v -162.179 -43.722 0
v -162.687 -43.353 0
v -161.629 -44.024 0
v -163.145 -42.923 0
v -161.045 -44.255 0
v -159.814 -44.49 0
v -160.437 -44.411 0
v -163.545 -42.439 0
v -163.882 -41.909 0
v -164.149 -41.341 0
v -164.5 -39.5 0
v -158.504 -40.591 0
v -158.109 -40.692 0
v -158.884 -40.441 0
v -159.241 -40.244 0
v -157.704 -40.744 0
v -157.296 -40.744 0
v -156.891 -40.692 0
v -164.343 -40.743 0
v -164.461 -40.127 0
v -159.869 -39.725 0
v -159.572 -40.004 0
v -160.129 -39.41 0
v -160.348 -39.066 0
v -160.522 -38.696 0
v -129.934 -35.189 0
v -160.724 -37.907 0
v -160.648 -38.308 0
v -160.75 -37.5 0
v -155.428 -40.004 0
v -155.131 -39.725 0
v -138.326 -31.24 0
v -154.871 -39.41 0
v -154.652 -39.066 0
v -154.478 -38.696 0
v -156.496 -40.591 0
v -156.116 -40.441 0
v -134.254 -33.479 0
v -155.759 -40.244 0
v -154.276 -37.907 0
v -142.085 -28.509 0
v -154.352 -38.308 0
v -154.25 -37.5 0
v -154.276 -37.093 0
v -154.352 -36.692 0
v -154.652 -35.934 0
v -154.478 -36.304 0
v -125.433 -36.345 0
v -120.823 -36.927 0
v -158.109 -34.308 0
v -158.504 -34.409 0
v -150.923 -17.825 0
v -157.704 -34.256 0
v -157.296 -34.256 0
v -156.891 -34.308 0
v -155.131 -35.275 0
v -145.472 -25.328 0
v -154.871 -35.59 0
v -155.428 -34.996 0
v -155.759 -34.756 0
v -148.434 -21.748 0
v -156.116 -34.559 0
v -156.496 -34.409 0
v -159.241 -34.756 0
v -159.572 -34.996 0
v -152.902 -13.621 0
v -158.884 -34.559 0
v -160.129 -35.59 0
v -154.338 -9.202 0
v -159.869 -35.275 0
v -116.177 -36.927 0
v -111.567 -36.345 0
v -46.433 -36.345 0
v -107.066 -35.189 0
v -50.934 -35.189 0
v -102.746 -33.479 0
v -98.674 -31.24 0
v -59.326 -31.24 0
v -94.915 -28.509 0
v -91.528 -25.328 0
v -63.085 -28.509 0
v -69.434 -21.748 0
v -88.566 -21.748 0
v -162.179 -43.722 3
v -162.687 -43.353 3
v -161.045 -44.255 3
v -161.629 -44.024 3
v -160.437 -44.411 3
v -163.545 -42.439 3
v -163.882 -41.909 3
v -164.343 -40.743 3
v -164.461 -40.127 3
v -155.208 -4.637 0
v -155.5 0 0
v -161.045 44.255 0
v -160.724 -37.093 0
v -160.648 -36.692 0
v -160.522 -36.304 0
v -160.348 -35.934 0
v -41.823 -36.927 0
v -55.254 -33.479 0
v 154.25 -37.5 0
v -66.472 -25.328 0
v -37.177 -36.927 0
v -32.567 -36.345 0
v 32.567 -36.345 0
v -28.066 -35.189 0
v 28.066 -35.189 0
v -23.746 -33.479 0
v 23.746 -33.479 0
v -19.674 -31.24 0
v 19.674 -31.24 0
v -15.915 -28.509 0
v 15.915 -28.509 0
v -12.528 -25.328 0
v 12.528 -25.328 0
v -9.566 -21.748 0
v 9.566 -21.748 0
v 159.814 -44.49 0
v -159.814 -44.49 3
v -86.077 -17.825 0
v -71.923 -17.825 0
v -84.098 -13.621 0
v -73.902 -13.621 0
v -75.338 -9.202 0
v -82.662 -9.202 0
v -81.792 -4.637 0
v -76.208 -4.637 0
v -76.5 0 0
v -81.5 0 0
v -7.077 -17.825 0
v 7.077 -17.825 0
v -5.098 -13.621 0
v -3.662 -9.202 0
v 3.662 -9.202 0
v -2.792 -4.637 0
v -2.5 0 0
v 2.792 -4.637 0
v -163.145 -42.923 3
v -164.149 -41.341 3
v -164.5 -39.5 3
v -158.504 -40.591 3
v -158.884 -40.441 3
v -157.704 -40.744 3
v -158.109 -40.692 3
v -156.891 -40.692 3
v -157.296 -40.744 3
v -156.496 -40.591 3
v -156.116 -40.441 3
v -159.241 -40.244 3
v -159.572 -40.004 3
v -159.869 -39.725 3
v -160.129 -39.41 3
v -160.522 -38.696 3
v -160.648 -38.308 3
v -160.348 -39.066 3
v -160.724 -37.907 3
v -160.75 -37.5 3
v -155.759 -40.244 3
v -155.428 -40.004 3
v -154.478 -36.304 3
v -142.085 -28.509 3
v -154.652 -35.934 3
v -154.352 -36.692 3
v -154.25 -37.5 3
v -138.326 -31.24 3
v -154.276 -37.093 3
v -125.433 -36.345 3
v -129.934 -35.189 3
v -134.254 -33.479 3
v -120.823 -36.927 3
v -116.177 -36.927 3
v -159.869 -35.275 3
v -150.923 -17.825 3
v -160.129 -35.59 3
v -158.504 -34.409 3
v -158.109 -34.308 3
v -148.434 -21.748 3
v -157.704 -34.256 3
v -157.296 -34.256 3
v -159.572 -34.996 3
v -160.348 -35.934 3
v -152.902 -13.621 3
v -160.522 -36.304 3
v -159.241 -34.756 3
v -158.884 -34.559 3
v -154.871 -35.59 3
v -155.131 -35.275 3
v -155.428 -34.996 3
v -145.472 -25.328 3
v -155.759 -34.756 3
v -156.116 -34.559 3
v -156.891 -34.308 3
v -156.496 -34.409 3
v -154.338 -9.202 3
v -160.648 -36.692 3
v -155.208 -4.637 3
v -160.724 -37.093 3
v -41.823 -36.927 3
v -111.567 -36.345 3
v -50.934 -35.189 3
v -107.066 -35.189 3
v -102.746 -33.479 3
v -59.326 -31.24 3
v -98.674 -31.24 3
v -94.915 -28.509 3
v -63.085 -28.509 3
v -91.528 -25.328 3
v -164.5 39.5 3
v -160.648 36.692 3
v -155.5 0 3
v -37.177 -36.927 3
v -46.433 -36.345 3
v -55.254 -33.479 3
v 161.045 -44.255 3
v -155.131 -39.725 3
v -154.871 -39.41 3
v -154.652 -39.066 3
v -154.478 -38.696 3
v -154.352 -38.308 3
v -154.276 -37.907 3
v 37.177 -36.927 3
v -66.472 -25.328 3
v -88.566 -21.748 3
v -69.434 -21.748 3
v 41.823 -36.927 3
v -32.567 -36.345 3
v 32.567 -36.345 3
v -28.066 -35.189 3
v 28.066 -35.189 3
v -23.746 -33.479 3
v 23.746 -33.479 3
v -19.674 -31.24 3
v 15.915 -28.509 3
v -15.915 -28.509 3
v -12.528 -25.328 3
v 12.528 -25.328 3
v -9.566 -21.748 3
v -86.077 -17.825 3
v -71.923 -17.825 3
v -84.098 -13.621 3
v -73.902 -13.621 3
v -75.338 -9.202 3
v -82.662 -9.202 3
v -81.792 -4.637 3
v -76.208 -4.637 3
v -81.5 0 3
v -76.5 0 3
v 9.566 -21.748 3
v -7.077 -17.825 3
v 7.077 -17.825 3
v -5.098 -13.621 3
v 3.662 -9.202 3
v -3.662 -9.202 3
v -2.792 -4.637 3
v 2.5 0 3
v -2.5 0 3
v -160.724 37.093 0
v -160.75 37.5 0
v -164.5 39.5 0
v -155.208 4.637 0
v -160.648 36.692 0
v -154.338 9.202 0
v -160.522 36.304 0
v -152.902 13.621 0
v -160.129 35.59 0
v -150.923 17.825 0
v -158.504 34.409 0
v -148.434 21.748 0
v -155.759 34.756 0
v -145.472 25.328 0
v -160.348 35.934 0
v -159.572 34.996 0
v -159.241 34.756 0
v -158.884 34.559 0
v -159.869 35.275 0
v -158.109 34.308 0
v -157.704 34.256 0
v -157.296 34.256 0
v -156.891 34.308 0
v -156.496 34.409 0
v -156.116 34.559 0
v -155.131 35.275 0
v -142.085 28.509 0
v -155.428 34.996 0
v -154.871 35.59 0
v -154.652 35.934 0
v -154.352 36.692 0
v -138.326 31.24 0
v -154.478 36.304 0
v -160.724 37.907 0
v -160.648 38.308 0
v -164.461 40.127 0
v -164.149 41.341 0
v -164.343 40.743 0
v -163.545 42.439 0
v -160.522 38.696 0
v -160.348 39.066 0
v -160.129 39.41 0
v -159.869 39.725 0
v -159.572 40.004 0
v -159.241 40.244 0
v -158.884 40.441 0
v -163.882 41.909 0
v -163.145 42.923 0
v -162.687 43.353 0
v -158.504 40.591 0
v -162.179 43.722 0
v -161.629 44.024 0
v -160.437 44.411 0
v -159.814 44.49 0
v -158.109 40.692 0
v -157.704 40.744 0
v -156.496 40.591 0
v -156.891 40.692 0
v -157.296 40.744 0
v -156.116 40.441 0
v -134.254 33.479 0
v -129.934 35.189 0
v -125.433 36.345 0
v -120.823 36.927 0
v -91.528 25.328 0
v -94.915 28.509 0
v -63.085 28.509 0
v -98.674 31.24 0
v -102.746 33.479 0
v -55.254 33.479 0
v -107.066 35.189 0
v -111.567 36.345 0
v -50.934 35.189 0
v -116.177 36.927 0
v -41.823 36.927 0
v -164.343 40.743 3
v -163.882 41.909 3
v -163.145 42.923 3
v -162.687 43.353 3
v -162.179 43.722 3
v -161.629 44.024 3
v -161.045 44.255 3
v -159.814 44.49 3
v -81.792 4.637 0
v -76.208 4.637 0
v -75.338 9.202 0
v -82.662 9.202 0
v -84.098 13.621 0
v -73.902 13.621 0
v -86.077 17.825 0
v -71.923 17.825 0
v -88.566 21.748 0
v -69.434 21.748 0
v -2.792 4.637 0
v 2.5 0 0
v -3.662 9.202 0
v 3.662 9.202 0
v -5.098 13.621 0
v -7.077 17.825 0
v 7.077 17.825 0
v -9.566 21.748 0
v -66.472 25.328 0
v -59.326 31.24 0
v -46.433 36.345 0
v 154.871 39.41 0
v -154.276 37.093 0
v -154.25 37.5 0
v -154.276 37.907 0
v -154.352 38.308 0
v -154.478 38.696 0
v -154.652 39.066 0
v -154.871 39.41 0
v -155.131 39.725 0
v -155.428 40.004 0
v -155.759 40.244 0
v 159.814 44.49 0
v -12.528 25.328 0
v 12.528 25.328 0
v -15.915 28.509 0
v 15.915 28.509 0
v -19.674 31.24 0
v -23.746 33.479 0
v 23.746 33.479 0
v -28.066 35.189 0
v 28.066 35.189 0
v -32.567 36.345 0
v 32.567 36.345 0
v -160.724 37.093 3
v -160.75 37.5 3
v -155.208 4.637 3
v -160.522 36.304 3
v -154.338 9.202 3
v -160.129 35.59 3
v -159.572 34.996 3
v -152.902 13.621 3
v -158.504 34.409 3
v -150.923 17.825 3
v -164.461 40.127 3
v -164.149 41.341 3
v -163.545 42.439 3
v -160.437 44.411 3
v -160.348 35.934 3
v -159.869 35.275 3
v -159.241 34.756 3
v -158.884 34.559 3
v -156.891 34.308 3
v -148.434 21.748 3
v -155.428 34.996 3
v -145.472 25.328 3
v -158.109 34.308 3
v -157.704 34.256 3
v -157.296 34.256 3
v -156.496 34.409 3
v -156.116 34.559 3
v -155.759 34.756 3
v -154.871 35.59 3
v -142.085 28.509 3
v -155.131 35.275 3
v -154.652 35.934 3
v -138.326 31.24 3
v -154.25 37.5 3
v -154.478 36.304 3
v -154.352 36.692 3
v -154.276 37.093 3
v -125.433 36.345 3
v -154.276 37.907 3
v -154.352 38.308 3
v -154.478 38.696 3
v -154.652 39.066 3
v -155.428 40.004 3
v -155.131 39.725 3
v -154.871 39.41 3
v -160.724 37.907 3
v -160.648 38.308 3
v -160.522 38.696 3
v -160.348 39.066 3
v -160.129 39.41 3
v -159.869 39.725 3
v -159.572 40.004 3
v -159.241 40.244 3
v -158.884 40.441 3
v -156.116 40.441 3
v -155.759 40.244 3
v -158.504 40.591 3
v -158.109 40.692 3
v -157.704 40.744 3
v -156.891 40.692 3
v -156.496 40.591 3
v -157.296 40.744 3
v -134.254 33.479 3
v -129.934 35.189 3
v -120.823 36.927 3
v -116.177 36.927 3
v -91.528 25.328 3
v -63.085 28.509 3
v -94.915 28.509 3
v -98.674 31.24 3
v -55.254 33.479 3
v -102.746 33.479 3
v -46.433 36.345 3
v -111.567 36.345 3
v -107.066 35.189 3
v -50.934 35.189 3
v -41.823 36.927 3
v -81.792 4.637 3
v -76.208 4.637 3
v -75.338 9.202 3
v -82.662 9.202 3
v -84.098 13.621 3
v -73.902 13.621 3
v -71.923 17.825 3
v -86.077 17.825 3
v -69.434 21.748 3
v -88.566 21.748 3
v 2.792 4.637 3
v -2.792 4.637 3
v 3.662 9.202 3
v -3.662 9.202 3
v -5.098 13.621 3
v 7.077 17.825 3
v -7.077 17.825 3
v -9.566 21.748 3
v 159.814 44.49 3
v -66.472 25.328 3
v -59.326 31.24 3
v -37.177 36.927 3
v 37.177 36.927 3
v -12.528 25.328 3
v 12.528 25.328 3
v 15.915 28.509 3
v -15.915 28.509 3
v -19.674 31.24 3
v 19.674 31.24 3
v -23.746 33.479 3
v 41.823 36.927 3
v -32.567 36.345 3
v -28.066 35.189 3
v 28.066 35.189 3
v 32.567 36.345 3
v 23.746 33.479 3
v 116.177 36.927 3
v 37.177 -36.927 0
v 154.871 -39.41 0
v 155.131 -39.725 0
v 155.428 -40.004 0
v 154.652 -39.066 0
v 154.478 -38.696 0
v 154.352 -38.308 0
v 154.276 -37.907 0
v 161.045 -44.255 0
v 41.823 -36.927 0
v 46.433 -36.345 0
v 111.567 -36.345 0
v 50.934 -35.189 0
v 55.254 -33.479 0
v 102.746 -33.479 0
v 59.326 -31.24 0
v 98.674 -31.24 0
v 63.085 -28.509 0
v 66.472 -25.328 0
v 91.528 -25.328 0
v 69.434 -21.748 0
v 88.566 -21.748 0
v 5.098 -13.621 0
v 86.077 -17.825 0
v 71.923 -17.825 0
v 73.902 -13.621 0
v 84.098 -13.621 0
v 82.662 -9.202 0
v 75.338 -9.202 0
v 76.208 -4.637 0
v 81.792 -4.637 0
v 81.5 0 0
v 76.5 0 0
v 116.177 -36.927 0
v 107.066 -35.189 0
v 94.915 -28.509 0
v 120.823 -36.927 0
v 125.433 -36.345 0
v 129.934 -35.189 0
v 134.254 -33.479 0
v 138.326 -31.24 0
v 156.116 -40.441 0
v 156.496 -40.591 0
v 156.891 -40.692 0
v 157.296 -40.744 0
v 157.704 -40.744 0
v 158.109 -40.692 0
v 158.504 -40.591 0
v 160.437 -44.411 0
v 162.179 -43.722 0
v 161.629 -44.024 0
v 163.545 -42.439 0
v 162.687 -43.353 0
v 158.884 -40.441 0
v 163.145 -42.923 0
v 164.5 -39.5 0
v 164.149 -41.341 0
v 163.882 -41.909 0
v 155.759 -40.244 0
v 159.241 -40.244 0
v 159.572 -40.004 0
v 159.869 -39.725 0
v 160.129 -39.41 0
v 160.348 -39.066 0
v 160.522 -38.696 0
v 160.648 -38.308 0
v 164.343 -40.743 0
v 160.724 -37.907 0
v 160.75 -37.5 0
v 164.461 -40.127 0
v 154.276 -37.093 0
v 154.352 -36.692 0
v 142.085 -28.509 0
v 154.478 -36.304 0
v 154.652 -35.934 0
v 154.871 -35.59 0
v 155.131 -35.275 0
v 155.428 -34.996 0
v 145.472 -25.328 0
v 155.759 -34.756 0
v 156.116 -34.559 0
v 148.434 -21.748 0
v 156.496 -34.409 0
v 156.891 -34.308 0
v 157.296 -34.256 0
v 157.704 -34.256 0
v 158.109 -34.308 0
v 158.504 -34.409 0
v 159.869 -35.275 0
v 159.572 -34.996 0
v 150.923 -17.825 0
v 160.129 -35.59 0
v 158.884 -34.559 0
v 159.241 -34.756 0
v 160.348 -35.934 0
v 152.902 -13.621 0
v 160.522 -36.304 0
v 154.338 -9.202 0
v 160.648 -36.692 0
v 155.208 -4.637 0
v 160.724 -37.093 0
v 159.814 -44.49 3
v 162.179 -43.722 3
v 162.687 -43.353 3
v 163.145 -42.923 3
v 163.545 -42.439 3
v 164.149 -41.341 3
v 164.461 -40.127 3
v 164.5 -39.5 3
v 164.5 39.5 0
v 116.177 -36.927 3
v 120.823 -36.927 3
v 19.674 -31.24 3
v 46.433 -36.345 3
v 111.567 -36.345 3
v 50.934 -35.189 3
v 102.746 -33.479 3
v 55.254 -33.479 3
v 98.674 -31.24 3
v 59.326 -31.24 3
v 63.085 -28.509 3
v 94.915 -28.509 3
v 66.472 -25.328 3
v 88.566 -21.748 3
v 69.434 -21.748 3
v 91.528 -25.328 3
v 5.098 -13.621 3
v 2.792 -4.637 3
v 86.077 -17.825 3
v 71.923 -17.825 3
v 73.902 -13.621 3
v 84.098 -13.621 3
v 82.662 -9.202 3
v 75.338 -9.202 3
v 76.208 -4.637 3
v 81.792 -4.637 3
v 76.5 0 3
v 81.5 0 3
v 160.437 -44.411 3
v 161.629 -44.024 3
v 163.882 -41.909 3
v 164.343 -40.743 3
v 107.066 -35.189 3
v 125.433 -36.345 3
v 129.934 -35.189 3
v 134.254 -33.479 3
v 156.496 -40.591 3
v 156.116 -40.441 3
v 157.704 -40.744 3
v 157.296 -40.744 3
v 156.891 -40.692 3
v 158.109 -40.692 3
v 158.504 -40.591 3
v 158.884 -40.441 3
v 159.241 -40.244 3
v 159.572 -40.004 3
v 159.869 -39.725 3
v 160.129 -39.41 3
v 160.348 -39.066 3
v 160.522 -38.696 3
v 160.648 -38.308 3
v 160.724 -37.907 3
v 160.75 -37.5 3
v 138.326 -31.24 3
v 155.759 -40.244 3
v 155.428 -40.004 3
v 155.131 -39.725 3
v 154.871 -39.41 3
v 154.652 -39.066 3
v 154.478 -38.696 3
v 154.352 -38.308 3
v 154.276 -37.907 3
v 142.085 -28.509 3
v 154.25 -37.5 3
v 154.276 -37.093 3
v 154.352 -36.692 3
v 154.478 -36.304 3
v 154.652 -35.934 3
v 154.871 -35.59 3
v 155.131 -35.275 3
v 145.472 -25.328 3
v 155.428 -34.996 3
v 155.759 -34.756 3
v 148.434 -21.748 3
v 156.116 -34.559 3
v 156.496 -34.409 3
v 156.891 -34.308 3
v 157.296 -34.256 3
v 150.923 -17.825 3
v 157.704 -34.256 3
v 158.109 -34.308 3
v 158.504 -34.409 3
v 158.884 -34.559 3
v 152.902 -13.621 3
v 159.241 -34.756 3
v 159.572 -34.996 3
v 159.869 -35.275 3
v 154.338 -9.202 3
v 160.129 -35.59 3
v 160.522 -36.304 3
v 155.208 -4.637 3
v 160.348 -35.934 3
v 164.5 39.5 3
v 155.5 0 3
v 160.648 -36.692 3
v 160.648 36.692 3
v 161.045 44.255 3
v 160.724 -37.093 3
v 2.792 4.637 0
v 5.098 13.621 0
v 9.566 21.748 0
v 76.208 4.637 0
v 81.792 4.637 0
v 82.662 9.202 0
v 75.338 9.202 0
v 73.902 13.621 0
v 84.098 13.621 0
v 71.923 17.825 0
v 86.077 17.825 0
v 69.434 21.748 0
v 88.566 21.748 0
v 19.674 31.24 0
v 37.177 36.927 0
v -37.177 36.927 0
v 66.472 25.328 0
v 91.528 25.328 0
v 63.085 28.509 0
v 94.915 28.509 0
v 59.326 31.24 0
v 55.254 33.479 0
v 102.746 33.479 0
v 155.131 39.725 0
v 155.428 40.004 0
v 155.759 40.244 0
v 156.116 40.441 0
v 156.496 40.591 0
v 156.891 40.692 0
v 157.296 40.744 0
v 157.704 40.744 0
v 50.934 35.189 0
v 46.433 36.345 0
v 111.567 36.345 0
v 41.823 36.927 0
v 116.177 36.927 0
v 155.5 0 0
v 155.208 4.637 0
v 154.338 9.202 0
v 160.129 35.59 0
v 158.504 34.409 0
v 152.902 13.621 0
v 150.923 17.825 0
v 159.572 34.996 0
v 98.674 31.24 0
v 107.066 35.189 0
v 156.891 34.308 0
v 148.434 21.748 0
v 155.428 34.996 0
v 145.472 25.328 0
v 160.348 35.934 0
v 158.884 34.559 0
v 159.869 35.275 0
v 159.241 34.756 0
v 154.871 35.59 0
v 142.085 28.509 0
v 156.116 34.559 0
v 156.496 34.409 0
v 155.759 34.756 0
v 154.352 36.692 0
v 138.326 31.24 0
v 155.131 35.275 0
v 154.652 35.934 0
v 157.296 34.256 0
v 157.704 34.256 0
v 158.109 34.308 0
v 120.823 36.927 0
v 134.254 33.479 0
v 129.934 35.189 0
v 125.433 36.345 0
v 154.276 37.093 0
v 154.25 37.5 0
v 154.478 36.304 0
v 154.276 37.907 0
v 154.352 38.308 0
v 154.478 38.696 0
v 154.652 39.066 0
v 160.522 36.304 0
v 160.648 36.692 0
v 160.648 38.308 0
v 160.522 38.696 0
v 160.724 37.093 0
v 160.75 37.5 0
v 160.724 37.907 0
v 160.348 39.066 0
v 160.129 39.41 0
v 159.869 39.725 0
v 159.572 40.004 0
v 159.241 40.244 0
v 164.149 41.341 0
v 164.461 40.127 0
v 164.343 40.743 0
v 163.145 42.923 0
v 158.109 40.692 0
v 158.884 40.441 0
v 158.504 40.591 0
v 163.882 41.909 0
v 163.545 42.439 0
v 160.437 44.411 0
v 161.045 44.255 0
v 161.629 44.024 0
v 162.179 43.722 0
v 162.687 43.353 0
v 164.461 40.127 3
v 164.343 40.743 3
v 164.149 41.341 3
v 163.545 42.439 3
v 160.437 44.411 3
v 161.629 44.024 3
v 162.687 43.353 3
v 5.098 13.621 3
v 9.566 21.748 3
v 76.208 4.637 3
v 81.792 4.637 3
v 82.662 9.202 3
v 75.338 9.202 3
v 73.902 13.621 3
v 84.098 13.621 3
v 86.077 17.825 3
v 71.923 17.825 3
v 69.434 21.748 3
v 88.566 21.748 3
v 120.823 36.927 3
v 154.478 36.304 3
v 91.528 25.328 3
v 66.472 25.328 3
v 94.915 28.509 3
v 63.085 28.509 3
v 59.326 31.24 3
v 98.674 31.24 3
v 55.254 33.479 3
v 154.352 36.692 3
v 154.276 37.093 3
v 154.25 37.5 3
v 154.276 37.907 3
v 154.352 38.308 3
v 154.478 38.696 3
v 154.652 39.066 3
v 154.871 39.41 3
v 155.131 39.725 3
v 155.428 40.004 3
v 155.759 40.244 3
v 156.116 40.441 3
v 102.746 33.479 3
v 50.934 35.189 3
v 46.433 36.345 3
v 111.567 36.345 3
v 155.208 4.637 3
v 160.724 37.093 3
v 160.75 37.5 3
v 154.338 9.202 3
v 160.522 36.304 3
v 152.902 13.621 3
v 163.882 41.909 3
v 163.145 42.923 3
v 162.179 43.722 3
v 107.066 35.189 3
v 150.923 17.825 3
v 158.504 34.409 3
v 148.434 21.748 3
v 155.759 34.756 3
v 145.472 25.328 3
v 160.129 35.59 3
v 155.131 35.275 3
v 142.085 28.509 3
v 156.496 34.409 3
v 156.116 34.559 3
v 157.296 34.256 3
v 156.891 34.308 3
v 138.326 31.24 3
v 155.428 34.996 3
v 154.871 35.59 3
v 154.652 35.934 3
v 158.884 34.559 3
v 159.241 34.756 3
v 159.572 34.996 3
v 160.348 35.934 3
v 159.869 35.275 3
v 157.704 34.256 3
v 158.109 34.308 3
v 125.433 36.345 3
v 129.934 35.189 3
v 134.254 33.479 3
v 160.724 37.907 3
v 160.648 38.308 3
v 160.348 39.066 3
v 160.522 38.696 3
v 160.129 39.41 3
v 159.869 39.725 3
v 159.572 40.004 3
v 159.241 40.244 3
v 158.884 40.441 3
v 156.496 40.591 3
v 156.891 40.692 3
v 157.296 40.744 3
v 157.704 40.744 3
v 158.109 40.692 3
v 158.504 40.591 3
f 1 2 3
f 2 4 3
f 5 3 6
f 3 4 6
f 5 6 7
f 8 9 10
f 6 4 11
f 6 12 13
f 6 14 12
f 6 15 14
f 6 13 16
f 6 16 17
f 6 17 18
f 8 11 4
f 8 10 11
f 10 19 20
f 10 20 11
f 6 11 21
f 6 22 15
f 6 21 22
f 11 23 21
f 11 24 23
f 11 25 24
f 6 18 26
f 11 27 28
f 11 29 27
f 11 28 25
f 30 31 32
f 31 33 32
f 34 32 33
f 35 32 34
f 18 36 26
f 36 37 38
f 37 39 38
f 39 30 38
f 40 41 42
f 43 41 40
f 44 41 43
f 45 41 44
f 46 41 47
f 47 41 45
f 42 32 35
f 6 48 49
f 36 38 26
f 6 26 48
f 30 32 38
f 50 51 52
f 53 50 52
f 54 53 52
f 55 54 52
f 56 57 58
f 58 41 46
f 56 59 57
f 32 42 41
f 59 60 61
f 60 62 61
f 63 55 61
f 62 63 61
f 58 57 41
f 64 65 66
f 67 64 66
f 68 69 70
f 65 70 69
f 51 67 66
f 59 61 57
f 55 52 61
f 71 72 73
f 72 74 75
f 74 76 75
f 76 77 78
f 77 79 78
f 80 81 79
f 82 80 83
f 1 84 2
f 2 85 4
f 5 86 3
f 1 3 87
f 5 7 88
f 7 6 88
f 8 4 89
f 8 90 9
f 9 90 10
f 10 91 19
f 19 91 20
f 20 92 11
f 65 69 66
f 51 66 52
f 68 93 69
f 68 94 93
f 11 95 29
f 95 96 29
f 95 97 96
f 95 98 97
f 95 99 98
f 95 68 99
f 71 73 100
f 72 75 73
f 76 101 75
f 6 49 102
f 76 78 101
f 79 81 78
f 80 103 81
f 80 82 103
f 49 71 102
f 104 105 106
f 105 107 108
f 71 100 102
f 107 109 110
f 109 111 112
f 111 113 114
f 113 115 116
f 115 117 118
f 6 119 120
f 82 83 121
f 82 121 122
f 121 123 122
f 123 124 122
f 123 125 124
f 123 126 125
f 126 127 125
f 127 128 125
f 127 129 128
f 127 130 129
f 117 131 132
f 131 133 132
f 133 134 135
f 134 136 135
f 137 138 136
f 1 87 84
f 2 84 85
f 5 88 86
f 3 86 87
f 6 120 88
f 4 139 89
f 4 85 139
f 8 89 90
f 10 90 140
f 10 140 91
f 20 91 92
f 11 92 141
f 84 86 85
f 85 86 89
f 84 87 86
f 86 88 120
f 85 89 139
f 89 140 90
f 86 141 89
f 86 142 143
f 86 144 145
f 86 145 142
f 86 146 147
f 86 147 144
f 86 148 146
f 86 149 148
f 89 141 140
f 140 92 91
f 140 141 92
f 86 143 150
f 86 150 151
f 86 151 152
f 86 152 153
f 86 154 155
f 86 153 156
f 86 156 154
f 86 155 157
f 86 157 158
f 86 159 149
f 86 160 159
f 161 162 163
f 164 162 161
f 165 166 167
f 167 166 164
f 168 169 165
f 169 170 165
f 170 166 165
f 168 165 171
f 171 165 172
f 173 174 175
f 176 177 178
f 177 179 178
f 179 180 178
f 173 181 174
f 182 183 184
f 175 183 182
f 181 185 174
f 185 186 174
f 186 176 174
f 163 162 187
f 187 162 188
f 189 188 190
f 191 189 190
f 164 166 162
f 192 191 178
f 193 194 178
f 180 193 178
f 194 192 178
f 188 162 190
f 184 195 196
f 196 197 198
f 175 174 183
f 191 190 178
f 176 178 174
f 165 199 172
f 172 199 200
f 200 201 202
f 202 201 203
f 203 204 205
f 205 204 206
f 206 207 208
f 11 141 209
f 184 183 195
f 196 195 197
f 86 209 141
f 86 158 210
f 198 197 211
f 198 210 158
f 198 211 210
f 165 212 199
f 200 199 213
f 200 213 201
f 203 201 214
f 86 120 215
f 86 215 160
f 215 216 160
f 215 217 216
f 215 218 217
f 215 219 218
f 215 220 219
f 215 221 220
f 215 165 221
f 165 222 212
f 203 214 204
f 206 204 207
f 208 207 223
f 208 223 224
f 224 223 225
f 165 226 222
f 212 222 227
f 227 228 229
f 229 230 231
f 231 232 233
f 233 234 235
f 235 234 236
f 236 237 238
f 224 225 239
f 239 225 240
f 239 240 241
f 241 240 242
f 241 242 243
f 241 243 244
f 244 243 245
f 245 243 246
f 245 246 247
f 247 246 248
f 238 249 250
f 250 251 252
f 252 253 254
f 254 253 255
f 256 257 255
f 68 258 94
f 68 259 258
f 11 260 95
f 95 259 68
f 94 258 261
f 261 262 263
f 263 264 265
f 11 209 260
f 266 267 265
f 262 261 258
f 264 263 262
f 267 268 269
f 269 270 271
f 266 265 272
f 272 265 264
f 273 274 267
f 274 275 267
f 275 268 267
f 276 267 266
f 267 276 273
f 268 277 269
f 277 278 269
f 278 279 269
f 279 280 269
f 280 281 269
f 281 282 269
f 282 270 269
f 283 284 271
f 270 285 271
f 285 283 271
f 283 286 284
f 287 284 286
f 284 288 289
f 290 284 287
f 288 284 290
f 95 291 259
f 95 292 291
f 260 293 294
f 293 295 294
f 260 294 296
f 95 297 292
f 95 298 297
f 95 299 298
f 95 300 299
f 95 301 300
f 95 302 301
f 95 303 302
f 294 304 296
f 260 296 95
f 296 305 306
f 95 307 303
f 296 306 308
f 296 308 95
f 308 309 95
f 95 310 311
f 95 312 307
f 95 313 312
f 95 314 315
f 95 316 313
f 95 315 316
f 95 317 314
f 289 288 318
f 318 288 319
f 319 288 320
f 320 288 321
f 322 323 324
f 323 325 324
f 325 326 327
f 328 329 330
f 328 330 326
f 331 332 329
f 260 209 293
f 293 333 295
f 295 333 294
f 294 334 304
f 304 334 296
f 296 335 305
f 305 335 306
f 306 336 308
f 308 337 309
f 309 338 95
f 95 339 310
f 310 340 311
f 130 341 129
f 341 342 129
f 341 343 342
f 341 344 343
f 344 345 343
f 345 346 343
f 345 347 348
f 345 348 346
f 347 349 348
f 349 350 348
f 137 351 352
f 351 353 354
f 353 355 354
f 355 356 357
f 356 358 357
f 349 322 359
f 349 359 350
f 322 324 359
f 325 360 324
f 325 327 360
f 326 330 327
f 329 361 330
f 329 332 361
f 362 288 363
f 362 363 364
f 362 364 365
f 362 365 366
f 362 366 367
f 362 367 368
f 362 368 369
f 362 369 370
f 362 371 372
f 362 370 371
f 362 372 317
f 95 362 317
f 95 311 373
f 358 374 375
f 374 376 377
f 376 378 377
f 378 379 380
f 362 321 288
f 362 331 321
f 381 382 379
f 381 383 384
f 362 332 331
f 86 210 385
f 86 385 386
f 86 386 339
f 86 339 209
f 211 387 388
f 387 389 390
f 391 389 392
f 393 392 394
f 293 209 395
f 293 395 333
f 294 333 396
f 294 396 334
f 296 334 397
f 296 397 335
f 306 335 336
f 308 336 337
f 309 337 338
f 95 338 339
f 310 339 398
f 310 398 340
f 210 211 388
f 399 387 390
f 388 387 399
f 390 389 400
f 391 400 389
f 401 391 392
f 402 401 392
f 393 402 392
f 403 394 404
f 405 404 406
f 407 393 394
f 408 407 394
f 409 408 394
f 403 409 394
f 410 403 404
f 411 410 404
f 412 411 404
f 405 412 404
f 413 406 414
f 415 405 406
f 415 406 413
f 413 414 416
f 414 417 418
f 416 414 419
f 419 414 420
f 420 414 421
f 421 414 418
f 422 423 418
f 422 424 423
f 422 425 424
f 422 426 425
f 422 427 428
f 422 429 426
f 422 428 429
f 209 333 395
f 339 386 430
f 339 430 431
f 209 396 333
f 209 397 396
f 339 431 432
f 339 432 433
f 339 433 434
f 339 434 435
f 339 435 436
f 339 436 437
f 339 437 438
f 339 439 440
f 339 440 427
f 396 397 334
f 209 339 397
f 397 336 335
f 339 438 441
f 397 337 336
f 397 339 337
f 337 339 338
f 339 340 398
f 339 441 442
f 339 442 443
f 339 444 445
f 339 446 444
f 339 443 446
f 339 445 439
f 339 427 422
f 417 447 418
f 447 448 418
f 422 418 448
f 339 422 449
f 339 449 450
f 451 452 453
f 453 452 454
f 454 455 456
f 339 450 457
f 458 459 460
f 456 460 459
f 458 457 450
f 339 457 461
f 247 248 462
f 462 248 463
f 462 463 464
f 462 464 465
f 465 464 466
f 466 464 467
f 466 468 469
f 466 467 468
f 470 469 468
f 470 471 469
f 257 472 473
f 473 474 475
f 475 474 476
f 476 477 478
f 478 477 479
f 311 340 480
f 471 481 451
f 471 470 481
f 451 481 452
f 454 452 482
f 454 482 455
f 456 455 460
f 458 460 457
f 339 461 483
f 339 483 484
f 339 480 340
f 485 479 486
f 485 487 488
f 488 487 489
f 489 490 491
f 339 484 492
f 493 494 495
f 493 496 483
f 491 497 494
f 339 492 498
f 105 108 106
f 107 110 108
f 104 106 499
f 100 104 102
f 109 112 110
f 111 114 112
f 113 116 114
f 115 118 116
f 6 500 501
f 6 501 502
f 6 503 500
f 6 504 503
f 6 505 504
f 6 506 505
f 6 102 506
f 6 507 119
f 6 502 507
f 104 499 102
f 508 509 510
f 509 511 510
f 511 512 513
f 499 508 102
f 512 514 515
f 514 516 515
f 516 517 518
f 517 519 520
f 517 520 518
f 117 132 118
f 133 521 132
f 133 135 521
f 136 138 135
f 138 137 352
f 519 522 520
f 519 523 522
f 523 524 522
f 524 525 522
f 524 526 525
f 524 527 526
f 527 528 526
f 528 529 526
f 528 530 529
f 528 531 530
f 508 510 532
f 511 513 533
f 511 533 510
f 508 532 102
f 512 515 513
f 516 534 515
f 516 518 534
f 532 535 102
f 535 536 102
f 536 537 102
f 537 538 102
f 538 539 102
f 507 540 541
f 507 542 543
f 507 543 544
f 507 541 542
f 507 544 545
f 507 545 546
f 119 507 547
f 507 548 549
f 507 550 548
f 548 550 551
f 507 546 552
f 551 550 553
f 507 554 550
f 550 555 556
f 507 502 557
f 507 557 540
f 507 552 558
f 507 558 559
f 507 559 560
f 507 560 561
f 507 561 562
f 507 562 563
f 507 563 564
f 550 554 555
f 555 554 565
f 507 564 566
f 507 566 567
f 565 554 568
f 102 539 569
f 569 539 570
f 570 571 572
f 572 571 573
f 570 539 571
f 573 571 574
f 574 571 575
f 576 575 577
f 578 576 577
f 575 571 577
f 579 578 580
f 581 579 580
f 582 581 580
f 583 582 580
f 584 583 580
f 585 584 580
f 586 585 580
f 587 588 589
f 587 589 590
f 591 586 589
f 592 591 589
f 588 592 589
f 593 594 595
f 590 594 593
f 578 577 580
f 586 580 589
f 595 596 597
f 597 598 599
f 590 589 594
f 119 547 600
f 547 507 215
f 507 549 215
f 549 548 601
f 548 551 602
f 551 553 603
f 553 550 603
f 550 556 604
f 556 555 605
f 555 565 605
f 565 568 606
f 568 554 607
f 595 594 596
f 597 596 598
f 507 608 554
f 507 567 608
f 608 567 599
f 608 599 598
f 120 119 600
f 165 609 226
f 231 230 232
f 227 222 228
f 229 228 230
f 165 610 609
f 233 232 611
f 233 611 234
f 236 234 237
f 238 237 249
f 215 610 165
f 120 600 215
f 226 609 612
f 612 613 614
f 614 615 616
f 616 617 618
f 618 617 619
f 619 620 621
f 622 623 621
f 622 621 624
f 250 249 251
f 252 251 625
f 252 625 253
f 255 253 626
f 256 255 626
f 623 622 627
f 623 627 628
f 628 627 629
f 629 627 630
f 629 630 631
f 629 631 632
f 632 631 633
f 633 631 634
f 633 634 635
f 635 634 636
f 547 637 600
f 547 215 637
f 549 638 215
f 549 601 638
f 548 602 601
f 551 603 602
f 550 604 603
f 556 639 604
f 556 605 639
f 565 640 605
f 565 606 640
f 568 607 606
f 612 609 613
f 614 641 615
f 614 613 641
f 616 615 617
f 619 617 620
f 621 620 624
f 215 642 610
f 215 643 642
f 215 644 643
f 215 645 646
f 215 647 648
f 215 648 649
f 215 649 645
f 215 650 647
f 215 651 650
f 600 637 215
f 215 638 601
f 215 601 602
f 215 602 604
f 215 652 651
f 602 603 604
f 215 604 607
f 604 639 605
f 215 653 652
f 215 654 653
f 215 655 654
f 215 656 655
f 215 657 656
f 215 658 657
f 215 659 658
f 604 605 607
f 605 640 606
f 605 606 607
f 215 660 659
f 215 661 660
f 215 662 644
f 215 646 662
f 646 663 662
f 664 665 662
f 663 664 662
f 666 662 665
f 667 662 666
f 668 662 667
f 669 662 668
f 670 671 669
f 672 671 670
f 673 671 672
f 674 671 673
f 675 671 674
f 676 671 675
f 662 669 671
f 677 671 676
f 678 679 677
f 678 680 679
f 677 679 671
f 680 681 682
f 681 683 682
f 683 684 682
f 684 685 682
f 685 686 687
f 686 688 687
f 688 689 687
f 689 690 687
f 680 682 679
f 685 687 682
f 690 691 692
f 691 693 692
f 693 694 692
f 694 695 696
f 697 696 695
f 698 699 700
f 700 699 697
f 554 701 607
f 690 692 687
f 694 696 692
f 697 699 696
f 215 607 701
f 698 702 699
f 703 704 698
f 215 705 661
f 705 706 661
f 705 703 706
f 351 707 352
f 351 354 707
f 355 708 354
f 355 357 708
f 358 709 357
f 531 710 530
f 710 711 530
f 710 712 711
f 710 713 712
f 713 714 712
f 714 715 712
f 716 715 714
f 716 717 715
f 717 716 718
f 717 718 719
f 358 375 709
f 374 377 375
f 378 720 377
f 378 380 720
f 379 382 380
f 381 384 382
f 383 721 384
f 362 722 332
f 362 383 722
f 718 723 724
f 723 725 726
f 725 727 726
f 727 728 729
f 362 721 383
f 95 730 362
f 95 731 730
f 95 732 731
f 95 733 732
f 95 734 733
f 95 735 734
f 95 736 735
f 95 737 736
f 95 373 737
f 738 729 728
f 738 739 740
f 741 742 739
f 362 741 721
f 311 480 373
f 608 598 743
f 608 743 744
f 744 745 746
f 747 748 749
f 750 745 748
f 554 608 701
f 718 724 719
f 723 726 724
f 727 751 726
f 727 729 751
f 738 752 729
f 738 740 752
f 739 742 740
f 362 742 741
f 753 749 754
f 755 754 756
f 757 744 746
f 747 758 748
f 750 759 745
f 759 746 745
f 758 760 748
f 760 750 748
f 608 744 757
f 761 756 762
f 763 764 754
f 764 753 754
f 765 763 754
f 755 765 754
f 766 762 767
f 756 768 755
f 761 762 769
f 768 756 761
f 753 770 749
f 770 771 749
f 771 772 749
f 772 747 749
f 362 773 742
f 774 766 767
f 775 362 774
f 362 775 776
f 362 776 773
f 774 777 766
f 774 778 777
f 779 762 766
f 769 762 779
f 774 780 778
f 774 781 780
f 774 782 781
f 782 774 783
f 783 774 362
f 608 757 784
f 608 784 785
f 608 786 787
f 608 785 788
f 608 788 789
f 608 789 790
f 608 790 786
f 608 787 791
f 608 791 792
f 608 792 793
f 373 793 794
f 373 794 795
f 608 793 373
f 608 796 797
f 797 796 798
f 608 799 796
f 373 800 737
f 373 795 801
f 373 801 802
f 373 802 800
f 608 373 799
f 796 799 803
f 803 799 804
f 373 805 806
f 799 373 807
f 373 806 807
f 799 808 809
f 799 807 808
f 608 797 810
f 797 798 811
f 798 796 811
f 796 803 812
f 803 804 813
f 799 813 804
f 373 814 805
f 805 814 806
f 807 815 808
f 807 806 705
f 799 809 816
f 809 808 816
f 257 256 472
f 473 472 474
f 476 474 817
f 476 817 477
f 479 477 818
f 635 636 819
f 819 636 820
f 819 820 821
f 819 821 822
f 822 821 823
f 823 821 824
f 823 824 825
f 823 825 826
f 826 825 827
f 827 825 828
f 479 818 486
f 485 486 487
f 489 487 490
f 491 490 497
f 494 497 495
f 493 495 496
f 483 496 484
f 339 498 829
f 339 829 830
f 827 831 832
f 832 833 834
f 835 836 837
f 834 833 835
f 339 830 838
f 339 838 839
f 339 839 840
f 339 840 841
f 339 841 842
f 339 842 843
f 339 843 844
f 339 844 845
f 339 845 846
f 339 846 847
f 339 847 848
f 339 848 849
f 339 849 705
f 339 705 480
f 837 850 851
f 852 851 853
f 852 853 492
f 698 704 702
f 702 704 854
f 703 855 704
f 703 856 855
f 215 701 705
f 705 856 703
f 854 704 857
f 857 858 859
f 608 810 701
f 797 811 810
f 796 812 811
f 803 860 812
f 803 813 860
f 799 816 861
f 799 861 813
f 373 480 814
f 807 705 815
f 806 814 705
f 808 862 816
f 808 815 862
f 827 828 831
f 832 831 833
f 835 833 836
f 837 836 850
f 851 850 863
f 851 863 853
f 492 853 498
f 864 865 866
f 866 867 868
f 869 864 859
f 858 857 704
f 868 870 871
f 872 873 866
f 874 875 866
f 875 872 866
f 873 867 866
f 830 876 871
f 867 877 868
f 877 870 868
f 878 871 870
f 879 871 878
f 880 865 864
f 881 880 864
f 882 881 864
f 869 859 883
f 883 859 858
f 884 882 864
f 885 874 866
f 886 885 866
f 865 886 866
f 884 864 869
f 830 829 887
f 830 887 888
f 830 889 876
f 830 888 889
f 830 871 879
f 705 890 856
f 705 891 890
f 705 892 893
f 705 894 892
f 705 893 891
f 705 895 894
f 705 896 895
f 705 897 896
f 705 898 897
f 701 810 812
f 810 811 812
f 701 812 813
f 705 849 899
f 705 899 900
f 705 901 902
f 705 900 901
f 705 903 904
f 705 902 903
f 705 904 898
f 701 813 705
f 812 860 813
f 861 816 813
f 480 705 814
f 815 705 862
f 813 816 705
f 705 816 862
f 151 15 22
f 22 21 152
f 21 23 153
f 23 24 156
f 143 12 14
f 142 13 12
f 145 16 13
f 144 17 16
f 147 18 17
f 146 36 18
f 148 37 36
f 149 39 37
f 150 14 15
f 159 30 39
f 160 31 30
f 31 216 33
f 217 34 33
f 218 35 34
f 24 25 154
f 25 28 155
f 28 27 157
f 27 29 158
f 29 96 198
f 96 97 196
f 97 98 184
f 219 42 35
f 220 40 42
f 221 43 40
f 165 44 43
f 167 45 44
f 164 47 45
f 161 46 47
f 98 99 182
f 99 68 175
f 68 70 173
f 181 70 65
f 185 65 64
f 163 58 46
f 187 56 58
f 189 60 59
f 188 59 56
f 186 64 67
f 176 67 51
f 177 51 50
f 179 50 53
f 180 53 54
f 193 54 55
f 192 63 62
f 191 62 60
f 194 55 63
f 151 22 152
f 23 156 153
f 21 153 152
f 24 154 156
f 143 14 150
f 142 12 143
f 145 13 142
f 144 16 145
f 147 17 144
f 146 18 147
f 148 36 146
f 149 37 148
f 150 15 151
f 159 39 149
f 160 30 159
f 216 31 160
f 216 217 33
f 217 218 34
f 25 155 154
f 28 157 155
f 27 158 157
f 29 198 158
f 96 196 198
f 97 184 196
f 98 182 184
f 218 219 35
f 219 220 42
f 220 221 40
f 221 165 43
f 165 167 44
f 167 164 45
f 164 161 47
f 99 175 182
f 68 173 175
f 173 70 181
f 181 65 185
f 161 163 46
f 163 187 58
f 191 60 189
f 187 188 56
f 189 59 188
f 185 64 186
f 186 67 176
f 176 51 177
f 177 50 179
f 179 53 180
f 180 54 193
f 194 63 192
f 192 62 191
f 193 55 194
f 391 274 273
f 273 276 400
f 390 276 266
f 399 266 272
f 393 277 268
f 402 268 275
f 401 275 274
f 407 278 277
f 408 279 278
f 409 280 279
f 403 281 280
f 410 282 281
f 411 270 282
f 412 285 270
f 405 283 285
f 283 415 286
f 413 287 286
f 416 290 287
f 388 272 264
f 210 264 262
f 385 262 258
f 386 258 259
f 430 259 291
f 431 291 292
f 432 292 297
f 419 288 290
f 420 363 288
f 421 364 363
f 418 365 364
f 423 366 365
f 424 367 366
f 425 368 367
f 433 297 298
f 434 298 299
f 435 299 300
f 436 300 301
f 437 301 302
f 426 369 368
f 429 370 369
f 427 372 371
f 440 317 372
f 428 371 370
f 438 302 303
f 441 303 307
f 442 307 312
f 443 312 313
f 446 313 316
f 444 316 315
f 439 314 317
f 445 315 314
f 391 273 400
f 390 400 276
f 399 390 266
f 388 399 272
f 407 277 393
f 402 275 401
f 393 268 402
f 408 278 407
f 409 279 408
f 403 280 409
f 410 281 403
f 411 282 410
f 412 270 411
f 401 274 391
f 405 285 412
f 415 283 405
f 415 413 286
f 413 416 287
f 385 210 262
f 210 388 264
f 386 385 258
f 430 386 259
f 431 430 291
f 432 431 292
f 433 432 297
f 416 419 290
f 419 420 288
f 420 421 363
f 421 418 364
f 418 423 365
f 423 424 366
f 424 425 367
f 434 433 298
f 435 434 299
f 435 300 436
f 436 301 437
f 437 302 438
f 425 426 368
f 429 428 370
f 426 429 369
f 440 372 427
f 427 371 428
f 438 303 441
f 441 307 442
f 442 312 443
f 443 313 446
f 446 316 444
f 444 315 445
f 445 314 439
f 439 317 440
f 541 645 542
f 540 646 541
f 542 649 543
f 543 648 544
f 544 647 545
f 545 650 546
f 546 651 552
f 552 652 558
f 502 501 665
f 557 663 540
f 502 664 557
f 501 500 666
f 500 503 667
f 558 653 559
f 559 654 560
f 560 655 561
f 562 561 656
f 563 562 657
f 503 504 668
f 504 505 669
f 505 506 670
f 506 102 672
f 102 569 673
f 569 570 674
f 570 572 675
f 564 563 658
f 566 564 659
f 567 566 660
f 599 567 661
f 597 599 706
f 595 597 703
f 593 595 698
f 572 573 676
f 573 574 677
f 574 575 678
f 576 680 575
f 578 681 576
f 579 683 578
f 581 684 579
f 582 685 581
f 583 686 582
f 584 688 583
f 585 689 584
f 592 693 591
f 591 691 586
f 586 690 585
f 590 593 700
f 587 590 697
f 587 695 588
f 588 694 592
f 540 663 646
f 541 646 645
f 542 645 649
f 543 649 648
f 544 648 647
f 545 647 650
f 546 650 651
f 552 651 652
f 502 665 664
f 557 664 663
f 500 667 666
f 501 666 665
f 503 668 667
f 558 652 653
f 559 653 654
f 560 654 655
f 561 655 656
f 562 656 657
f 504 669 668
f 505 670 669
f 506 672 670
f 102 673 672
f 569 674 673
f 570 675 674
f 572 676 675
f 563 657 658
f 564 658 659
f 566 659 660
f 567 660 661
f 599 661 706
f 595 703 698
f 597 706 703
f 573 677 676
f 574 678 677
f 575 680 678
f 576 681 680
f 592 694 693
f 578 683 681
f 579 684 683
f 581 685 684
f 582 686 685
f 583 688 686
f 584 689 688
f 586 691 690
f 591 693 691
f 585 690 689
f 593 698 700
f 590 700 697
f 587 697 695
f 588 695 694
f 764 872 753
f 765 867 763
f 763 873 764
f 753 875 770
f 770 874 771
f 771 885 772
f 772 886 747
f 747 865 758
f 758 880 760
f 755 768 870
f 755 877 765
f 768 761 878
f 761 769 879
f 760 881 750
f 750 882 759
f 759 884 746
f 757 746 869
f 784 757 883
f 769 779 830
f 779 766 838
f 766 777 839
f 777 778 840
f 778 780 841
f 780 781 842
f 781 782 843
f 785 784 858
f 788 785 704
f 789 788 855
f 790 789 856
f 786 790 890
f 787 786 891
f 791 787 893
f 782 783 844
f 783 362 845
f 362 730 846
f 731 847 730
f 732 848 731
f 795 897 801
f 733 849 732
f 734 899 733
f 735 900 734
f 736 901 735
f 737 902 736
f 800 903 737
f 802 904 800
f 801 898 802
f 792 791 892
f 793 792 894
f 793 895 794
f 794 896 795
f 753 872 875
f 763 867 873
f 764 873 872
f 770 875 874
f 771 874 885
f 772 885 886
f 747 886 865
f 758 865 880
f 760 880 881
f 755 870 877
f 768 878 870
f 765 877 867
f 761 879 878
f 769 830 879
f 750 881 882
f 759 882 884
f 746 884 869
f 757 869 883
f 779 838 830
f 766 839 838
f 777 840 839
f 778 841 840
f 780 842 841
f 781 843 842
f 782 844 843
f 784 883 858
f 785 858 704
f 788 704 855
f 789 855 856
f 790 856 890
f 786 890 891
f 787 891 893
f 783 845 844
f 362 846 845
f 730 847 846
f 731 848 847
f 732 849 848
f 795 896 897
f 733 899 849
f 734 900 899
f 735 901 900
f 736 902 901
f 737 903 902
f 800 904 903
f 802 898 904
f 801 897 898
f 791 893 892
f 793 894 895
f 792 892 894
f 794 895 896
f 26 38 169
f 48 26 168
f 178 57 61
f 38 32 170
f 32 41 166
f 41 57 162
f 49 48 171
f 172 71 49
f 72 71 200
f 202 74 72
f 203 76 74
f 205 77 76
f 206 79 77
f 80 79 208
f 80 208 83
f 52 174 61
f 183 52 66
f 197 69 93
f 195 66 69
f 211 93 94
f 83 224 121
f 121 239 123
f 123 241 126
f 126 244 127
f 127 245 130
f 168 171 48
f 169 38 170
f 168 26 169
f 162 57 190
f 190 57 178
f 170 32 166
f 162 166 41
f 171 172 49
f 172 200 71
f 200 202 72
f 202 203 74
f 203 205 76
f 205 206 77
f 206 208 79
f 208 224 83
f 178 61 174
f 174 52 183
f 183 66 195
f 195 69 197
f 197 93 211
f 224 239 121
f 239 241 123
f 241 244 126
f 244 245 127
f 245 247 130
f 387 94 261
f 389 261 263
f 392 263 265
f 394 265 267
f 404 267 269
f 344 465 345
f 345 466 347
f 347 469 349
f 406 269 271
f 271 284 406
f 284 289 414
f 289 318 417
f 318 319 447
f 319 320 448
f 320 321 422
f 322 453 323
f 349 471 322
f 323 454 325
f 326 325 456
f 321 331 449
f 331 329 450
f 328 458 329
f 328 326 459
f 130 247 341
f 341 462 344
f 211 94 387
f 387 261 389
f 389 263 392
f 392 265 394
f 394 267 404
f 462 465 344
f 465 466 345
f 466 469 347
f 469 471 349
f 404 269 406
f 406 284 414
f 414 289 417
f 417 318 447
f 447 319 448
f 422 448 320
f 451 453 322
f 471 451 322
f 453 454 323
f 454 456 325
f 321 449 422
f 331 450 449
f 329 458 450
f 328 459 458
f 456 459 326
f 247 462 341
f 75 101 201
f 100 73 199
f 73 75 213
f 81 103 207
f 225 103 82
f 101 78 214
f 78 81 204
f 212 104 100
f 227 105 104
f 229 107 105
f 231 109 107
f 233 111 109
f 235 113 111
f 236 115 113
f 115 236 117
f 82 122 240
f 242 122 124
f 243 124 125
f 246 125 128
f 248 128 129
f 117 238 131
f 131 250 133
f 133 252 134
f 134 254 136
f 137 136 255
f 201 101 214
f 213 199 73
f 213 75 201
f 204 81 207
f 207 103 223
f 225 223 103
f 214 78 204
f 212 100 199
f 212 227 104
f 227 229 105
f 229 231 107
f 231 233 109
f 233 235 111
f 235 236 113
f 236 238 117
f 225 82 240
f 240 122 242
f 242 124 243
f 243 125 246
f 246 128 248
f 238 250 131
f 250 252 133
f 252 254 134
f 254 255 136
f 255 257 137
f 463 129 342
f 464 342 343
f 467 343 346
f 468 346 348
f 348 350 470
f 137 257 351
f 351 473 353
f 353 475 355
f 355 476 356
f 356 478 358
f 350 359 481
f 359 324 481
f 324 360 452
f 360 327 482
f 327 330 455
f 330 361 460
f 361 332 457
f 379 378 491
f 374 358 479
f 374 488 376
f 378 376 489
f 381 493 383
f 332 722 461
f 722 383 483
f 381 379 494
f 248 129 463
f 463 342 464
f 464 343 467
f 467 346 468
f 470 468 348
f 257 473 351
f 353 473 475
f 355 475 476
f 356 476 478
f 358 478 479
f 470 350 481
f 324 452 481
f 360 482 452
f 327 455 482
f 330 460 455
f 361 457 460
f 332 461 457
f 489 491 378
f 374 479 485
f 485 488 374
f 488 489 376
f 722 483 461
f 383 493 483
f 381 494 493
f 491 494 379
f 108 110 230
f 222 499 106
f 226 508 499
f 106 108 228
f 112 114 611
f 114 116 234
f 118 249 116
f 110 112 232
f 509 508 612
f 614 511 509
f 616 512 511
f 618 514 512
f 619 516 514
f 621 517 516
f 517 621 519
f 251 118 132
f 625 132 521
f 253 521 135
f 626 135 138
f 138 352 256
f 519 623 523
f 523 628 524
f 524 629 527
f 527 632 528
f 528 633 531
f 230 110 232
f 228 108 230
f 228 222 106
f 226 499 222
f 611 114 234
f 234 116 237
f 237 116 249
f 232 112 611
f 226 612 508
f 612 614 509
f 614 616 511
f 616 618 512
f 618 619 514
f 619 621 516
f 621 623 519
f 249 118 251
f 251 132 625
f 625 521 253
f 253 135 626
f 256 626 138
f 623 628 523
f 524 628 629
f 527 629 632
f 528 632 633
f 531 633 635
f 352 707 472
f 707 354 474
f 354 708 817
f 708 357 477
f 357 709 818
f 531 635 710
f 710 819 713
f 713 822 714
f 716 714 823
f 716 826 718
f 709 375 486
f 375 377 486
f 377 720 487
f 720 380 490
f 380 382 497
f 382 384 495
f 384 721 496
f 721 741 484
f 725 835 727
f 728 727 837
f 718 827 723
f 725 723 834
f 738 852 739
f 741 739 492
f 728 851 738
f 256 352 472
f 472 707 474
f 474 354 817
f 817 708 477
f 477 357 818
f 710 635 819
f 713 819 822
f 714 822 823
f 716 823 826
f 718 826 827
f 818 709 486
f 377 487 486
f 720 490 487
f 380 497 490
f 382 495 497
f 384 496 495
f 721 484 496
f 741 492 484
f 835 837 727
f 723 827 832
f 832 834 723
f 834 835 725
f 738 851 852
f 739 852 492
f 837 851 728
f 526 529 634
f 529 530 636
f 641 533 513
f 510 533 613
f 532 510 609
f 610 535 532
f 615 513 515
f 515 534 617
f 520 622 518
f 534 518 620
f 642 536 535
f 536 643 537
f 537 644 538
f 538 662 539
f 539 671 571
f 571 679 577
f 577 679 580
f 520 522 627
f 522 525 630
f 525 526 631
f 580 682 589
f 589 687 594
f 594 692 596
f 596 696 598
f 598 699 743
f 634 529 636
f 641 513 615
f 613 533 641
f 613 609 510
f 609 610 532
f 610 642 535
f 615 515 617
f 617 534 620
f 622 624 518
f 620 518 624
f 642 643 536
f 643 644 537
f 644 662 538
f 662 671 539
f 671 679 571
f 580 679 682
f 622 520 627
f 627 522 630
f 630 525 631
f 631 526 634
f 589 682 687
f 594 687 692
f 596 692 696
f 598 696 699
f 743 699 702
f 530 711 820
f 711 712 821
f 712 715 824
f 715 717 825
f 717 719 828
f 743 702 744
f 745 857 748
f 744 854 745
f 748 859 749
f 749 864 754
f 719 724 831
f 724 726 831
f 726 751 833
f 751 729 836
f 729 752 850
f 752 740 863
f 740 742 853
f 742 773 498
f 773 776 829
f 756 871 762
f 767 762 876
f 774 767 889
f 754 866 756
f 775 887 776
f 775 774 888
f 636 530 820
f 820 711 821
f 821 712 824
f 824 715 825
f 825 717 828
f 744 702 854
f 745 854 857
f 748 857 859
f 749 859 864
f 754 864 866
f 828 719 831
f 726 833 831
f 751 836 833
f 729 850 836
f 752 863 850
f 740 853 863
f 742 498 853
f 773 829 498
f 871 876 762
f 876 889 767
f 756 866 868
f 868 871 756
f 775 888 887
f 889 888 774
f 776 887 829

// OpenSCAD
$fn = 50;

difference() {
	union() {
		hull() {
			translate(v = [-159.5, 39.5, 0]) {
				cylinder(h = 3, r = 5);
			}
			translate(v = [159.5, 39.5, 0]) {
				cylinder(h = 3, r = 5);
			}
			translate(v = [-159.5, -39.5, 0]) {
				cylinder(h = 3, r = 5);
			}
			translate(v = [159.5, -39.5, 0]) {
				cylinder(h = 3, r = 5);
			}
		}
	}
	union() {
		translate(v = [-157.5, -37.5, -100.0]) {
			cylinder(h = 200, r = 3.25);
		}
		translate(v = [-157.5, 37.5, -100.0]) {
			cylinder(h = 200, r = 3.25);
		}
		translate(v = [157.5, -37.5, -100.0]) {
			cylinder(h = 200, r = 3.25);
		}
		translate(v = [157.5, 37.5, -100.0]) {
			cylinder(h = 200, r = 3.25);
		}
		translate(v = [-157.5, -37.5, -100.0]) {
			cylinder(h = 200, r = 1.8);
		}
		translate(v = [-157.5, 37.5, -100.0]) {
			cylinder(h = 200, r = 1.8);
		}
		translate(v = [157.5, -37.5, -100.0]) {
			cylinder(h = 200, r = 1.8);
		}
		translate(v = [157.5, 37.5, -100.0]) {
			cylinder(h = 200, r = 1.8);
		}
		translate(v = [-118.5, 0, 0.0]) {
			cylinder(h = 3, r = 37.0);
		}
		translate(v = [-39.5, 0, 0.0]) {
			cylinder(h = 3, r = 37.0);
		}
		translate(v = [39.5, 0, 0.0]) {
			cylinder(h = 3, r = 37.0);
		}
		translate(v = [118.5, 0, 0.0]) {
			cylinder(h = 3, r = 37.0);
		}
	}
}
